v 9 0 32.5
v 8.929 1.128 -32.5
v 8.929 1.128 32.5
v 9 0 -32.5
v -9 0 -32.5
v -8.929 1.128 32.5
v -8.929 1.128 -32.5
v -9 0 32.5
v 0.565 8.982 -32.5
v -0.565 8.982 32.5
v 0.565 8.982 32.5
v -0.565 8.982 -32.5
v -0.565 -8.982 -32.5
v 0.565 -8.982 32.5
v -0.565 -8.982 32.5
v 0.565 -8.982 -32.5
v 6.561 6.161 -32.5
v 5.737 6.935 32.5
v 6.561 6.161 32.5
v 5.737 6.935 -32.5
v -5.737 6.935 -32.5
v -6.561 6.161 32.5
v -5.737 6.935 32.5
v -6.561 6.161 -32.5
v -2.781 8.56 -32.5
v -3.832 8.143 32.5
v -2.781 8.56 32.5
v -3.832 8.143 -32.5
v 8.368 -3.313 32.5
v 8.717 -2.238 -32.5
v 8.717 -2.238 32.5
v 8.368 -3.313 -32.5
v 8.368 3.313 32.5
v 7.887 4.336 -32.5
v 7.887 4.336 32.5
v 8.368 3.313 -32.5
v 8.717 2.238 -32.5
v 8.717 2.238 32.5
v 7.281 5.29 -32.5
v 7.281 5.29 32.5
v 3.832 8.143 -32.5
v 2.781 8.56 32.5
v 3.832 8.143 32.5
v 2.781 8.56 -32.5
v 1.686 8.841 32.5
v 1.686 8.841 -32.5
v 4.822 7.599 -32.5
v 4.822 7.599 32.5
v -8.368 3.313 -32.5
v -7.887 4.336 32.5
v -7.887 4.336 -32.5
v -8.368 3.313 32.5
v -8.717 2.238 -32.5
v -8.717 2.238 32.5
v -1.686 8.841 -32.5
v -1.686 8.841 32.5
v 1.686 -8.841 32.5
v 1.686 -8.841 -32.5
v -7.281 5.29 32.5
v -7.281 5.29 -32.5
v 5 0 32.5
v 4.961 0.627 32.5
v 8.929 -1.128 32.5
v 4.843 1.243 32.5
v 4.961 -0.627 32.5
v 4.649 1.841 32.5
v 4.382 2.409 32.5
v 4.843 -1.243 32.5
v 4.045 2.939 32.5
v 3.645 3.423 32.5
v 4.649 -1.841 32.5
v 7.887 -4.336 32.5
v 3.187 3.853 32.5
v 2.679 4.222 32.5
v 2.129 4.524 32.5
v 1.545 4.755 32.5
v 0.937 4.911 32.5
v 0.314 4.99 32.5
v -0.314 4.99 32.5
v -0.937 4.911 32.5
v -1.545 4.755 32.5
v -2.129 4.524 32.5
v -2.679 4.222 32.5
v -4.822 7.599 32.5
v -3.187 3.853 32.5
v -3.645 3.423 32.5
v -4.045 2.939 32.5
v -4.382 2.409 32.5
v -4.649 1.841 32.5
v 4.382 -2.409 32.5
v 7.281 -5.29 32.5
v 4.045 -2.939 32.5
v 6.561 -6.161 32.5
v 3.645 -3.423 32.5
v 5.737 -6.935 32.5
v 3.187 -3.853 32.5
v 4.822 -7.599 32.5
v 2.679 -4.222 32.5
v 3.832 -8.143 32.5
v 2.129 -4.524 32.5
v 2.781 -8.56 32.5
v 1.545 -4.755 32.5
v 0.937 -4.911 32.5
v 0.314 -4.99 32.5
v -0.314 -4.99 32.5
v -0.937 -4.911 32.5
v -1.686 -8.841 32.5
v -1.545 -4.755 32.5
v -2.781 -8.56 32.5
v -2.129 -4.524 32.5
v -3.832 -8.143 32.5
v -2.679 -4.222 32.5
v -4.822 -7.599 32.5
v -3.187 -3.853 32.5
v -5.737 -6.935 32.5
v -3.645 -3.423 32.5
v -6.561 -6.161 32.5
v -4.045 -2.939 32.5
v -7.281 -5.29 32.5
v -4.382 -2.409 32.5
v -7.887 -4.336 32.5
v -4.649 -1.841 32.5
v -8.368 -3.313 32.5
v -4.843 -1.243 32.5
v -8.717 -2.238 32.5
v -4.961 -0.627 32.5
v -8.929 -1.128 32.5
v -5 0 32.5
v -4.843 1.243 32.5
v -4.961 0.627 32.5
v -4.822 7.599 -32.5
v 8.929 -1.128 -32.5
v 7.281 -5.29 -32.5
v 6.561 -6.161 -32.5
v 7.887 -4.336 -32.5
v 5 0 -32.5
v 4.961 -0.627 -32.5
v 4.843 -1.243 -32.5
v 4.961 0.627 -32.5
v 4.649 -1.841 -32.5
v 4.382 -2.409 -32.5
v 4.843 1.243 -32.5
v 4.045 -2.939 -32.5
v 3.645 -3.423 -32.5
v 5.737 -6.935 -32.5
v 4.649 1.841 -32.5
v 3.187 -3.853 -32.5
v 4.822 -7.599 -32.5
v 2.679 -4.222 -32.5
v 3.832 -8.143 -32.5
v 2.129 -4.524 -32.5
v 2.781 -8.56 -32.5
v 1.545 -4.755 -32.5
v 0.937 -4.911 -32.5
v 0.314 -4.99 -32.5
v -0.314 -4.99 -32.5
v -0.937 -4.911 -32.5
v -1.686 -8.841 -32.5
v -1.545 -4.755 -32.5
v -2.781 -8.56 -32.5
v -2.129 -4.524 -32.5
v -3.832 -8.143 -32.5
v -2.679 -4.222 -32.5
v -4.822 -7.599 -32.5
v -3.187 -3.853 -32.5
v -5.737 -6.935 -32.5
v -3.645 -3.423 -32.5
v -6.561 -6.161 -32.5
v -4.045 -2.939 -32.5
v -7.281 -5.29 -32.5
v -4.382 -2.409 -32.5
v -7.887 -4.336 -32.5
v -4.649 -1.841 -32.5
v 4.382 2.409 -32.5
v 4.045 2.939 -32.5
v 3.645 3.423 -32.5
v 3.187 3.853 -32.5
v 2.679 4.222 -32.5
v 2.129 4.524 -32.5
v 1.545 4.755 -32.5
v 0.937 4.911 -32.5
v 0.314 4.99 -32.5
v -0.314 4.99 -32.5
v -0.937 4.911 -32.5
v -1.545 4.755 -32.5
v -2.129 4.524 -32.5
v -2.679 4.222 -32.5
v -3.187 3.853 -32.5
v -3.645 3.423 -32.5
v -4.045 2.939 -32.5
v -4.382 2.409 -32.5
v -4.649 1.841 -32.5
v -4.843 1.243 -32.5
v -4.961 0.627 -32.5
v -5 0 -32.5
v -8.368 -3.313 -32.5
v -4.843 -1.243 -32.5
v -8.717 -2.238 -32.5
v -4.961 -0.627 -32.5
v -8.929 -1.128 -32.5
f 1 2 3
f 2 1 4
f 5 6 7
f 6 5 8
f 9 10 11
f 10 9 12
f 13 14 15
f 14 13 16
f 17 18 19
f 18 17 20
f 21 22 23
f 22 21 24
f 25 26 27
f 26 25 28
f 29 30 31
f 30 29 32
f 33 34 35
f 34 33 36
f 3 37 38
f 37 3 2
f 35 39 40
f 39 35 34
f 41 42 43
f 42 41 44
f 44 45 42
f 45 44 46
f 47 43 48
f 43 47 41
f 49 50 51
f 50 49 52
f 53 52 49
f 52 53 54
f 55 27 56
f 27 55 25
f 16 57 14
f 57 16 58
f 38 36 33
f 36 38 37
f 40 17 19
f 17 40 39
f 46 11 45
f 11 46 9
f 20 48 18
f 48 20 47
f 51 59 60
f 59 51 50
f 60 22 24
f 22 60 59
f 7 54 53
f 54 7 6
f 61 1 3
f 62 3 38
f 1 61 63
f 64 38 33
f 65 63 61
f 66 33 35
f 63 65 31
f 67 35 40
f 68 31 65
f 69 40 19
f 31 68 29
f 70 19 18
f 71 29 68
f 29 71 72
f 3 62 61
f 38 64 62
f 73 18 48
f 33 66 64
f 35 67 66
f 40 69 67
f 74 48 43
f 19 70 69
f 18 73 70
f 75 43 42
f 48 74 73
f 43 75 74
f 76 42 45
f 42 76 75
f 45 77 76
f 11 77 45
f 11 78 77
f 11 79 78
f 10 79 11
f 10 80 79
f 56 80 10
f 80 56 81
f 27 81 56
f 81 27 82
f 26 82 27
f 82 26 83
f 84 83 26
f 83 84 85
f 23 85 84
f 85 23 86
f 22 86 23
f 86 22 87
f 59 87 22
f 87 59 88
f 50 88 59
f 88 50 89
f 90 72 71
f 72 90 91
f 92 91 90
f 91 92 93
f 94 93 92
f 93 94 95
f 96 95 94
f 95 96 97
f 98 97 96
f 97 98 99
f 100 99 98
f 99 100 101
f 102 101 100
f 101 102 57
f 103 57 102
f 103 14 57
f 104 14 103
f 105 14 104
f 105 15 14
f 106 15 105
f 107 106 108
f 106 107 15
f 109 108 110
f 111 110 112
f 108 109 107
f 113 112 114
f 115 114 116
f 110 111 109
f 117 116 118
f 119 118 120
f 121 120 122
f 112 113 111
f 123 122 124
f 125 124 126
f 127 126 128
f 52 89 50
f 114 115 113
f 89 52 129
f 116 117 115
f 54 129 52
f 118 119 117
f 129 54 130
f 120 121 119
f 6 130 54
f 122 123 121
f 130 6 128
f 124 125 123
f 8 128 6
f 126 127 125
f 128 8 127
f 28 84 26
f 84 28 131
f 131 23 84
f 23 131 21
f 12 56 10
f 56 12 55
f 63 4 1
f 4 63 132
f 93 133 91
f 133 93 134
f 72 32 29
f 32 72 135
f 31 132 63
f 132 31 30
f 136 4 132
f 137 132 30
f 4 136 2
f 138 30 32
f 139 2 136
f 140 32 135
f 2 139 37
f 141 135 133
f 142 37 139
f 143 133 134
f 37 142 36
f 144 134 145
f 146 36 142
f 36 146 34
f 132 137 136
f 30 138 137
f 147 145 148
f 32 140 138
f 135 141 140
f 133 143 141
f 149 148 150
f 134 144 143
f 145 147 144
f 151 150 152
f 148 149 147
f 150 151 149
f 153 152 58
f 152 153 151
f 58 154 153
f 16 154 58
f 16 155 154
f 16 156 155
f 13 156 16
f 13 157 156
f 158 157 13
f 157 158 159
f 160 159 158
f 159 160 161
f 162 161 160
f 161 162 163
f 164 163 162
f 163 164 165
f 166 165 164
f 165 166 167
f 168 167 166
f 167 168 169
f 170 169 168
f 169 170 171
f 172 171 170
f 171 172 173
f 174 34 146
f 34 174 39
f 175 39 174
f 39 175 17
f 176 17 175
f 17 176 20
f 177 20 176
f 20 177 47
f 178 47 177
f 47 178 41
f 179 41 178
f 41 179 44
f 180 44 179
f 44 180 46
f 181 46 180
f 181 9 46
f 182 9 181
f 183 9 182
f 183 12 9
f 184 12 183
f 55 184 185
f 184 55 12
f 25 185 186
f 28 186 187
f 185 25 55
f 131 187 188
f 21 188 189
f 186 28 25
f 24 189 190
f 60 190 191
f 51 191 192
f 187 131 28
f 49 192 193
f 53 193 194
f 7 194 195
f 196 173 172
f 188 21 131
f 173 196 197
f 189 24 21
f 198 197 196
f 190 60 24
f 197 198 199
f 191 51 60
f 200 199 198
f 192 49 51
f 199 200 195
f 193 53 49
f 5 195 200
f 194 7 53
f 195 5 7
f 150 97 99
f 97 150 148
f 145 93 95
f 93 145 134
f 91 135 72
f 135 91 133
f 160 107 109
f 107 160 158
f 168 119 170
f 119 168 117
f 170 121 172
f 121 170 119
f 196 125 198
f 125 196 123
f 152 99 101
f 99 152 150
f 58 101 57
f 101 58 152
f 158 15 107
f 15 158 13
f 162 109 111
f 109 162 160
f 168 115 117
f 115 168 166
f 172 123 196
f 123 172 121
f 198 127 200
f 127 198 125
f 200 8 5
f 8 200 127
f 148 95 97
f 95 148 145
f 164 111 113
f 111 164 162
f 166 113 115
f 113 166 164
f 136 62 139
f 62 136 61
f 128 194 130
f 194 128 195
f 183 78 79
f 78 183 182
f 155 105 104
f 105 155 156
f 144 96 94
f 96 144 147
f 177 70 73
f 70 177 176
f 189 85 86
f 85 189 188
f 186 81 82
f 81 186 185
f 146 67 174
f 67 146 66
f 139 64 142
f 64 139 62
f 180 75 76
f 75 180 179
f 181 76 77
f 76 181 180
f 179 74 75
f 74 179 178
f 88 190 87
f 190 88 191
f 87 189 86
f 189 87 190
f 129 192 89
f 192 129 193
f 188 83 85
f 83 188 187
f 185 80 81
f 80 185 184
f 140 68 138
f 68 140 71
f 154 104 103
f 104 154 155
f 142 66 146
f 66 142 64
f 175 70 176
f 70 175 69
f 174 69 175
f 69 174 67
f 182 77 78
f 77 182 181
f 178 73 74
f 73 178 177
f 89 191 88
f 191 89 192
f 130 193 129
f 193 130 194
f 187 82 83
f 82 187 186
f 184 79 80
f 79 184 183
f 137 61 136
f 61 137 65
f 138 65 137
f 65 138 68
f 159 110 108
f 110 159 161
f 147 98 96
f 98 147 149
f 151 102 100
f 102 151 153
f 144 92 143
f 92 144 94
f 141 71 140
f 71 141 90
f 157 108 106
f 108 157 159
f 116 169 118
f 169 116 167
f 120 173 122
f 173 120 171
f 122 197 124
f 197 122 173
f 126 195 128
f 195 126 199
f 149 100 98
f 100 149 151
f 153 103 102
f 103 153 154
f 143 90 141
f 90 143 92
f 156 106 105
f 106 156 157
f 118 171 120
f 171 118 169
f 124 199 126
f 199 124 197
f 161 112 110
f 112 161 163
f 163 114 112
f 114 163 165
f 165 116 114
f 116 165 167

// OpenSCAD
$fn = 50;


difference() {
	union() {
		translate(v = [0, 0, -32.5000000000]) {
			cylinder(h = 65, r = 9.0000000000);
		}
	}
	union() {
		translate(v = [0, 0, -100.0000000000]) {
			cylinder(h = 200, r = 5.0000000000);
		}
	}
}
